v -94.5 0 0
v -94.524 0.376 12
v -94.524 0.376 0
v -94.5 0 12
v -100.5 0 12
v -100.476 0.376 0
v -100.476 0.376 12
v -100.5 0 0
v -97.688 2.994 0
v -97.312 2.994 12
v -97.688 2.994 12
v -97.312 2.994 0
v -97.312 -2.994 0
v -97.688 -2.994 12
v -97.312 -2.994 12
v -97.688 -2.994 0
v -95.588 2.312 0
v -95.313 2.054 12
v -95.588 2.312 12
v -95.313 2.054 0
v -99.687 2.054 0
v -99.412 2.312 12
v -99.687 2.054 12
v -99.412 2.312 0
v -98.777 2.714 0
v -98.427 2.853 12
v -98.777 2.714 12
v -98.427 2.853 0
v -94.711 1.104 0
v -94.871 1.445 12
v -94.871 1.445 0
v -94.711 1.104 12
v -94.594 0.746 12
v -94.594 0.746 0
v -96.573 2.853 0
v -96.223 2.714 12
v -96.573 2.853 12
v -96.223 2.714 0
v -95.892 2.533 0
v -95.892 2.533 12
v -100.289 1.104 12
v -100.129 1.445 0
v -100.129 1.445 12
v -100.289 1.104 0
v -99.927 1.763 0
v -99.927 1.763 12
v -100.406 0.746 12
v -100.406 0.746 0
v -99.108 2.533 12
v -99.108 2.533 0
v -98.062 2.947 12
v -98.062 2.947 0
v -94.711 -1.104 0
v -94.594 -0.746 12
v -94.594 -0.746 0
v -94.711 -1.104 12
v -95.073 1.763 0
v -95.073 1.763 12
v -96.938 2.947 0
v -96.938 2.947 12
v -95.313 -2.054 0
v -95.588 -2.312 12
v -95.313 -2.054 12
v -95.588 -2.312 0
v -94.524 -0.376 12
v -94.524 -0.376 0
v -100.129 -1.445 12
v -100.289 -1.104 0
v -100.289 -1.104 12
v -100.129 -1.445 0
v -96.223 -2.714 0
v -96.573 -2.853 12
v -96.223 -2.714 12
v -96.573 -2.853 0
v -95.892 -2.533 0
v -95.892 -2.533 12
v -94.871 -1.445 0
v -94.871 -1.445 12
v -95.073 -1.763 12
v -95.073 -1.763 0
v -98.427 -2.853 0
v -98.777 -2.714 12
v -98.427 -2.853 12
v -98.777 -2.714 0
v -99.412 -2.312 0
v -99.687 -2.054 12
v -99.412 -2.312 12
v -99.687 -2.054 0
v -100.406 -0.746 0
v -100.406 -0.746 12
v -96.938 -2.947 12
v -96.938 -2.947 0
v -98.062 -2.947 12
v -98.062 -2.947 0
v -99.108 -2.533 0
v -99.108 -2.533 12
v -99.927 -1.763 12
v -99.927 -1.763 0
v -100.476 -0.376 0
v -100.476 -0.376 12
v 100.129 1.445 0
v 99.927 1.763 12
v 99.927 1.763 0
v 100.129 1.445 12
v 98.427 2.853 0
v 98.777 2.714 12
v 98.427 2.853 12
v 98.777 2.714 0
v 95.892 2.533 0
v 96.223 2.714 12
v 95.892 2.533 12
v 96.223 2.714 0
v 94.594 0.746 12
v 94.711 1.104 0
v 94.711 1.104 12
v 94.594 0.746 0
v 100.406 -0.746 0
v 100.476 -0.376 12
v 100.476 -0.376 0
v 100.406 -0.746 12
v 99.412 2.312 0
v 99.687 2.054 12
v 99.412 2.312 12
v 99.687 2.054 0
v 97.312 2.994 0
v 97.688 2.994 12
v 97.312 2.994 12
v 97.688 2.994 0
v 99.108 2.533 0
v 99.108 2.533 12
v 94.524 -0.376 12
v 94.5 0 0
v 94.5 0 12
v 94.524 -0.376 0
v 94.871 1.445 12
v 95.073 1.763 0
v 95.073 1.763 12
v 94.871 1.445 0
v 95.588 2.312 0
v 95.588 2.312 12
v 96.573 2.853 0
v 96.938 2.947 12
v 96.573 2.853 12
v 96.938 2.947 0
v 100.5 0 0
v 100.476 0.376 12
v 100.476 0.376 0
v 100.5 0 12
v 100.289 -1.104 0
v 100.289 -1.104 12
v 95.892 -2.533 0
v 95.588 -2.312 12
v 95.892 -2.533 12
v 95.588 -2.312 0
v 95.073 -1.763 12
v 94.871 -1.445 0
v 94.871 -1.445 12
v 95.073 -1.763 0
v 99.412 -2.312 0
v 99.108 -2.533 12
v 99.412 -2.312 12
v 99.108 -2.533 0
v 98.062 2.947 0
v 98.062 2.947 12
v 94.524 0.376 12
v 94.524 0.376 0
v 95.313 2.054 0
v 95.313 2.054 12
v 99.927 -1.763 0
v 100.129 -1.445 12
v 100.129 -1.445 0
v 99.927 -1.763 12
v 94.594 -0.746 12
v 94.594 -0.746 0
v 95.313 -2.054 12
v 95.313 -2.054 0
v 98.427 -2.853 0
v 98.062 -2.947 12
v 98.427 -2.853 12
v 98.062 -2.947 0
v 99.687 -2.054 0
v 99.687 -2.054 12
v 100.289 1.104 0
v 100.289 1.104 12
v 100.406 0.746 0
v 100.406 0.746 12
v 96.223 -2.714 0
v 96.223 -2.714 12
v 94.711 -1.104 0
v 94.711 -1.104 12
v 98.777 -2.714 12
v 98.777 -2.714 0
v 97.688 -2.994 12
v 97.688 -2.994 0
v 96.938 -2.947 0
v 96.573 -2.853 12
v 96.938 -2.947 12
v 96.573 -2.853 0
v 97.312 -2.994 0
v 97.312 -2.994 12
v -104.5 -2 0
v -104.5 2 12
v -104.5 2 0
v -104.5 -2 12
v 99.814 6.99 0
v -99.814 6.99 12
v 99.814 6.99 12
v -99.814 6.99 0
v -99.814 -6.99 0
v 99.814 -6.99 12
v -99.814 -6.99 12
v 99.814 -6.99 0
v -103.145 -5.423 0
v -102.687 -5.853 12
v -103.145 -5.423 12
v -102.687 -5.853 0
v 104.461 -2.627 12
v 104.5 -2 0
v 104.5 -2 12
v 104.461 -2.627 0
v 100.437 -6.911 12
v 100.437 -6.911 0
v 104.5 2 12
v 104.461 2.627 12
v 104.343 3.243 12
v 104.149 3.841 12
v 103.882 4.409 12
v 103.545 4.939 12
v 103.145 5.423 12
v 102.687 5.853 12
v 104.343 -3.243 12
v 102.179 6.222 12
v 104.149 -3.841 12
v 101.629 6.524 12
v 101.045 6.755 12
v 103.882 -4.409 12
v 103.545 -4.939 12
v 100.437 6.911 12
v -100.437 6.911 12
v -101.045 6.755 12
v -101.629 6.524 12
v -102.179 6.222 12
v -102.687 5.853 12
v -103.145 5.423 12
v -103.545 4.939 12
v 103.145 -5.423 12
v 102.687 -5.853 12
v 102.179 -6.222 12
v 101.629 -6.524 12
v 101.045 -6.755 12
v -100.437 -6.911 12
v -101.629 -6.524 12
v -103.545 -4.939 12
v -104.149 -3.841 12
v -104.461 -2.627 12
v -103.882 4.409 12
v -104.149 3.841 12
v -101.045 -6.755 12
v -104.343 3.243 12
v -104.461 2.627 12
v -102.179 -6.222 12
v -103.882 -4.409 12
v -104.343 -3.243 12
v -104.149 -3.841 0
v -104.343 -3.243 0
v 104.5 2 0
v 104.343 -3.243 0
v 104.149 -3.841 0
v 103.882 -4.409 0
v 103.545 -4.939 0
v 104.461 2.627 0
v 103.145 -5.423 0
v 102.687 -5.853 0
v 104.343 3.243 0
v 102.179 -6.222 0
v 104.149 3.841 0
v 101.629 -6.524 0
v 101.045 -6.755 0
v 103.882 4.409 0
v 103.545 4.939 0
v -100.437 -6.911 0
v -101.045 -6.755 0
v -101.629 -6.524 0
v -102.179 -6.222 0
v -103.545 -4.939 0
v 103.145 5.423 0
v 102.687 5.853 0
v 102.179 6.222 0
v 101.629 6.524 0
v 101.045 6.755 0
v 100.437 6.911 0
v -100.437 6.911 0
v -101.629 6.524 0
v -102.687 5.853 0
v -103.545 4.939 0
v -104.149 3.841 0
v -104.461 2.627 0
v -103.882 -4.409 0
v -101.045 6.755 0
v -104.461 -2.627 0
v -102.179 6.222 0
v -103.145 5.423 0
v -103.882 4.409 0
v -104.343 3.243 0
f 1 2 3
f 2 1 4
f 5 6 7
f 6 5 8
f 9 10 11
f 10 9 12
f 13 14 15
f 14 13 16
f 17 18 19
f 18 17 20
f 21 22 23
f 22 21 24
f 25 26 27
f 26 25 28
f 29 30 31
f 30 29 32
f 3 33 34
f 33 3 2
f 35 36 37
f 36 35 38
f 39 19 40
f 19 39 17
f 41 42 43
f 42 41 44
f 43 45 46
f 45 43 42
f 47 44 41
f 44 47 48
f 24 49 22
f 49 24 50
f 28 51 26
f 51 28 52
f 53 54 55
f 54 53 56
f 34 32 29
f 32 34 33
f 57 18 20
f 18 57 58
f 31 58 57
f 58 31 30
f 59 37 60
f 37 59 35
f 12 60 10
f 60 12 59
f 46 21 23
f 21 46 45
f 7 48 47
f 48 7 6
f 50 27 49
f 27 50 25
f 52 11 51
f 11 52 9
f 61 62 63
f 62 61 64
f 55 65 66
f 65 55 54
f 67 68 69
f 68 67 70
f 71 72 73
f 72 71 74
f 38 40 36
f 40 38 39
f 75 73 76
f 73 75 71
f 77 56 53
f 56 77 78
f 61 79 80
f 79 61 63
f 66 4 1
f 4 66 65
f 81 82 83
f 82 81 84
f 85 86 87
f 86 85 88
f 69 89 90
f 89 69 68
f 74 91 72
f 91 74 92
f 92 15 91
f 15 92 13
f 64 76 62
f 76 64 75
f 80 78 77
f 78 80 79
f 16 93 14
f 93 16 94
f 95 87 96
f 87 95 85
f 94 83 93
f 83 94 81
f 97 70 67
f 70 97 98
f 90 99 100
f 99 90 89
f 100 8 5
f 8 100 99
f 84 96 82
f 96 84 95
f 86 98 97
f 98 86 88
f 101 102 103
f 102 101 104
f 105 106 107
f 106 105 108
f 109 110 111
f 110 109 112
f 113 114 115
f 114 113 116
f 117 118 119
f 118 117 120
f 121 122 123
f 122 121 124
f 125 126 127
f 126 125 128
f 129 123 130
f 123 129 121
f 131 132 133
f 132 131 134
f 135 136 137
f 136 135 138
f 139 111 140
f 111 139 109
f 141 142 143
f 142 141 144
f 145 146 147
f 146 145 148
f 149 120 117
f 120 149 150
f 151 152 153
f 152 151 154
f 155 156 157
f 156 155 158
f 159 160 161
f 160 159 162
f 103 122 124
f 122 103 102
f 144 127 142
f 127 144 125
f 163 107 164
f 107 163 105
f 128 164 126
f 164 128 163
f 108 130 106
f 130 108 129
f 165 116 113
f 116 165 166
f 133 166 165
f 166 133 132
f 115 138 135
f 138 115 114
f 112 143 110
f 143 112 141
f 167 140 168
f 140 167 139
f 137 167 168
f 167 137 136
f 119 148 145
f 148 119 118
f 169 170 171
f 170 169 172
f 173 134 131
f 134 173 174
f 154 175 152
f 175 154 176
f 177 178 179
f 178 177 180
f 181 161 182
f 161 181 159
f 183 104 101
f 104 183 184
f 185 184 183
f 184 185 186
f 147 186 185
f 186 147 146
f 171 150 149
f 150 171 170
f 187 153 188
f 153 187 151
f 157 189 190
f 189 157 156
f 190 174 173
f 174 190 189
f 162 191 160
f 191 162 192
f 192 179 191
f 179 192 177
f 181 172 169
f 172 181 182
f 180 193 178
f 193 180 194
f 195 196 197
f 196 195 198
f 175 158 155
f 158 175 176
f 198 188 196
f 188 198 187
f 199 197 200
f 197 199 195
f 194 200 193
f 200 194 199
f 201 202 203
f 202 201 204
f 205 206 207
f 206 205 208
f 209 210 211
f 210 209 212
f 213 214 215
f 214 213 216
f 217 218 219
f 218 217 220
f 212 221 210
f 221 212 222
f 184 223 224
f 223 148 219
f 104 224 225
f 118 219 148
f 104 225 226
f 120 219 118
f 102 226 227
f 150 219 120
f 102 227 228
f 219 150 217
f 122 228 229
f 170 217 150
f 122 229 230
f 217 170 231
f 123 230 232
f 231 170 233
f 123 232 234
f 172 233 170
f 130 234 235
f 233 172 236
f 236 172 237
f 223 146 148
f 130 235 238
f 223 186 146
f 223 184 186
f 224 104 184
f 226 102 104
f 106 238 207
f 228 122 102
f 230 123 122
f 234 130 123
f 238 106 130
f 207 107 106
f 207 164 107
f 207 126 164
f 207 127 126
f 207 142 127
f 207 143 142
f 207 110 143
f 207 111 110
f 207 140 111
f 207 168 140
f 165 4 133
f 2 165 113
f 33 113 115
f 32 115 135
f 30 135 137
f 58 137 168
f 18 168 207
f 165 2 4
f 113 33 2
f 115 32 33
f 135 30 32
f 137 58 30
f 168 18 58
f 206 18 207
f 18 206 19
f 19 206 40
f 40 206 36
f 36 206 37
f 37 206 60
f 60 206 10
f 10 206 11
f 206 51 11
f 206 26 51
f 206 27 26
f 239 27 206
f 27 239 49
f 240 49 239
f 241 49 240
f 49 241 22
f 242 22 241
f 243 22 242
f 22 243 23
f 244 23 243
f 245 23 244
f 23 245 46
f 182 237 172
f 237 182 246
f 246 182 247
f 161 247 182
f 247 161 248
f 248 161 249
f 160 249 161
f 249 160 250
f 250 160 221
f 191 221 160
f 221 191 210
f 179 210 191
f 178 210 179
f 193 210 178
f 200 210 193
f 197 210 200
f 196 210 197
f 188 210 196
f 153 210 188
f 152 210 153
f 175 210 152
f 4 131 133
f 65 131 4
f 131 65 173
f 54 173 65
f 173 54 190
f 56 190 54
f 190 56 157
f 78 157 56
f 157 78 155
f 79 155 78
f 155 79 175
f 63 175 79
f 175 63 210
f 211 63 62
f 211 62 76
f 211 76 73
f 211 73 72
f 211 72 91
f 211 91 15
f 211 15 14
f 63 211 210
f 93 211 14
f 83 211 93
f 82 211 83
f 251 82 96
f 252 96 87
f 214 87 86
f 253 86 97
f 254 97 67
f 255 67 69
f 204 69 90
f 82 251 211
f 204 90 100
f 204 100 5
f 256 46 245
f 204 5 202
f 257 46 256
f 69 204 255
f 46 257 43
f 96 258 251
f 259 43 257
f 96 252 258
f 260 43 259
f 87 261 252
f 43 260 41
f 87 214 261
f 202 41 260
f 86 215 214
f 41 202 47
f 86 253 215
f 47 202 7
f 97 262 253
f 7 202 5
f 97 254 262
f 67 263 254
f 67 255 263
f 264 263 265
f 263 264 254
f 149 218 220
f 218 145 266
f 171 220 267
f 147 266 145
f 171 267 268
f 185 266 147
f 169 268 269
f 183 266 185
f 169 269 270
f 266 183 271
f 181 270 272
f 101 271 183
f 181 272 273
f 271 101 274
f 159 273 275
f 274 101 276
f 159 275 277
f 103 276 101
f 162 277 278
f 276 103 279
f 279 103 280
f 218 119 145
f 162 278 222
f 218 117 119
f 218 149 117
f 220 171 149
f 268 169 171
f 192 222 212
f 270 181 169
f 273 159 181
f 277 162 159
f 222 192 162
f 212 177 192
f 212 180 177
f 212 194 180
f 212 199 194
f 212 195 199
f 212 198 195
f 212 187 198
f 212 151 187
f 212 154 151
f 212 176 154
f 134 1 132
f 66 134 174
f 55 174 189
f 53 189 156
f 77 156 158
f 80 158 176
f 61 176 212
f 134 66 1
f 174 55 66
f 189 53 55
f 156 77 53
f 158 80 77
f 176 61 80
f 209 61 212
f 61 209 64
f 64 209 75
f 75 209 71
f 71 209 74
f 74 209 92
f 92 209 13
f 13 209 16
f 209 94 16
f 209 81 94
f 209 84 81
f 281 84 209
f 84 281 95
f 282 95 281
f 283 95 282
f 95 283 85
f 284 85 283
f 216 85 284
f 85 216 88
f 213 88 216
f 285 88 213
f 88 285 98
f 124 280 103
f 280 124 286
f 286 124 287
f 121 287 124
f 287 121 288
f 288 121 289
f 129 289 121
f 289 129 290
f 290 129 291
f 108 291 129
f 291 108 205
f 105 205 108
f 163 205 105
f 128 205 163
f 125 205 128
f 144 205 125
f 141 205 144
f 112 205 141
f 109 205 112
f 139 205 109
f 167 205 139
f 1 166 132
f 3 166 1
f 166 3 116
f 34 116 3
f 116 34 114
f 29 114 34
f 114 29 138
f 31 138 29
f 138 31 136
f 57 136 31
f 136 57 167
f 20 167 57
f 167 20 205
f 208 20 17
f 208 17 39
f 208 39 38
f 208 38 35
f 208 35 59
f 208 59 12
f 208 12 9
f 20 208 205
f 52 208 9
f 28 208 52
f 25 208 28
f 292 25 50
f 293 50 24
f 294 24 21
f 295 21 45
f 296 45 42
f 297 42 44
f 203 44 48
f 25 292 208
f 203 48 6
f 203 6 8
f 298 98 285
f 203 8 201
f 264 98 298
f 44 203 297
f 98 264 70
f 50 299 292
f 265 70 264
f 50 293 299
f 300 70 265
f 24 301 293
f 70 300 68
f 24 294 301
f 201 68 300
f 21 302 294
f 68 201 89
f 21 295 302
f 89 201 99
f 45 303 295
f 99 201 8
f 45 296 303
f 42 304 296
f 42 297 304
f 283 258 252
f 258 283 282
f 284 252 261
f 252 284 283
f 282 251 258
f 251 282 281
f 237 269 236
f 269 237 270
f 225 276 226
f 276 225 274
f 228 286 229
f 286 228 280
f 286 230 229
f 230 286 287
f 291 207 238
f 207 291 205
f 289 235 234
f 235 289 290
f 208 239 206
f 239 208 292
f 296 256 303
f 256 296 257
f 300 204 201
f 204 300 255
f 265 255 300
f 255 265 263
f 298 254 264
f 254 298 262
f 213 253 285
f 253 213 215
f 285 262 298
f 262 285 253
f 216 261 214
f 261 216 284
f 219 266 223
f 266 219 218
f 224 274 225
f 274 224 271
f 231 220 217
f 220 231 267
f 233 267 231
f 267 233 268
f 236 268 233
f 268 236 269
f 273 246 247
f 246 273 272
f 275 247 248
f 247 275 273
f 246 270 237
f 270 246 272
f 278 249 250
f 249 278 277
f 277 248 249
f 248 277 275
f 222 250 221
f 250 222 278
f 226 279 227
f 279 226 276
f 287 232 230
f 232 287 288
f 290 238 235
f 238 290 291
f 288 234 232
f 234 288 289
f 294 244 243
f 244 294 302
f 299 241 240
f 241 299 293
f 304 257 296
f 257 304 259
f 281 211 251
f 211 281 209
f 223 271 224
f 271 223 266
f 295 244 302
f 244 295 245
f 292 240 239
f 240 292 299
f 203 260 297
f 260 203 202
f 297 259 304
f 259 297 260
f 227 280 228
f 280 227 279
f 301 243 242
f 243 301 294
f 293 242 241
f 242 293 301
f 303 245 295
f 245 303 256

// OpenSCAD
$fn = 50;


difference() {
	union() {
		hull() {
			translate(v = [-99.5000000000, 2.0000000000, 0]) {
				cylinder(h = 12, r = 5);
			}
			translate(v = [99.5000000000, 2.0000000000, 0]) {
				cylinder(h = 12, r = 5);
			}
			translate(v = [-99.5000000000, -2.0000000000, 0]) {
				cylinder(h = 12, r = 5);
			}
			translate(v = [99.5000000000, -2.0000000000, 0]) {
				cylinder(h = 12, r = 5);
			}
		}
	}
	union() {
		translate(v = [-97.5000000000, 0.0000000000, 0]) {
			cylinder(h = 12, r = 3.0000000000);
		}
		translate(v = [97.5000000000, 0.0000000000, 0]) {
			cylinder(h = 12, r = 3.0000000000);
		}
		translate(v = [-97.5000000000, 0.0000000000, 0]) {
			cylinder(h = 12, r = 1.5000000000);
		}
		translate(v = [97.5000000000, 0.0000000000, 0]) {
			cylinder(h = 12, r = 1.5000000000);
		}
		translate(v = [-97.5000000000, 0.0000000000, 0]) {
			cylinder(h = 12, r = 1.5000000000);
		}
		translate(v = [97.5000000000, 0.0000000000, 0]) {
			cylinder(h = 12, r = 1.5000000000);
		}
		translate(v = [-97.5000000000, 0.0000000000, 0]) {
			cylinder(h = 12, r = 1.5000000000);
		}
		translate(v = [97.5000000000, 0.0000000000, 0]) {
			cylinder(h = 12, r = 1.5000000000);
		}
	}
}
